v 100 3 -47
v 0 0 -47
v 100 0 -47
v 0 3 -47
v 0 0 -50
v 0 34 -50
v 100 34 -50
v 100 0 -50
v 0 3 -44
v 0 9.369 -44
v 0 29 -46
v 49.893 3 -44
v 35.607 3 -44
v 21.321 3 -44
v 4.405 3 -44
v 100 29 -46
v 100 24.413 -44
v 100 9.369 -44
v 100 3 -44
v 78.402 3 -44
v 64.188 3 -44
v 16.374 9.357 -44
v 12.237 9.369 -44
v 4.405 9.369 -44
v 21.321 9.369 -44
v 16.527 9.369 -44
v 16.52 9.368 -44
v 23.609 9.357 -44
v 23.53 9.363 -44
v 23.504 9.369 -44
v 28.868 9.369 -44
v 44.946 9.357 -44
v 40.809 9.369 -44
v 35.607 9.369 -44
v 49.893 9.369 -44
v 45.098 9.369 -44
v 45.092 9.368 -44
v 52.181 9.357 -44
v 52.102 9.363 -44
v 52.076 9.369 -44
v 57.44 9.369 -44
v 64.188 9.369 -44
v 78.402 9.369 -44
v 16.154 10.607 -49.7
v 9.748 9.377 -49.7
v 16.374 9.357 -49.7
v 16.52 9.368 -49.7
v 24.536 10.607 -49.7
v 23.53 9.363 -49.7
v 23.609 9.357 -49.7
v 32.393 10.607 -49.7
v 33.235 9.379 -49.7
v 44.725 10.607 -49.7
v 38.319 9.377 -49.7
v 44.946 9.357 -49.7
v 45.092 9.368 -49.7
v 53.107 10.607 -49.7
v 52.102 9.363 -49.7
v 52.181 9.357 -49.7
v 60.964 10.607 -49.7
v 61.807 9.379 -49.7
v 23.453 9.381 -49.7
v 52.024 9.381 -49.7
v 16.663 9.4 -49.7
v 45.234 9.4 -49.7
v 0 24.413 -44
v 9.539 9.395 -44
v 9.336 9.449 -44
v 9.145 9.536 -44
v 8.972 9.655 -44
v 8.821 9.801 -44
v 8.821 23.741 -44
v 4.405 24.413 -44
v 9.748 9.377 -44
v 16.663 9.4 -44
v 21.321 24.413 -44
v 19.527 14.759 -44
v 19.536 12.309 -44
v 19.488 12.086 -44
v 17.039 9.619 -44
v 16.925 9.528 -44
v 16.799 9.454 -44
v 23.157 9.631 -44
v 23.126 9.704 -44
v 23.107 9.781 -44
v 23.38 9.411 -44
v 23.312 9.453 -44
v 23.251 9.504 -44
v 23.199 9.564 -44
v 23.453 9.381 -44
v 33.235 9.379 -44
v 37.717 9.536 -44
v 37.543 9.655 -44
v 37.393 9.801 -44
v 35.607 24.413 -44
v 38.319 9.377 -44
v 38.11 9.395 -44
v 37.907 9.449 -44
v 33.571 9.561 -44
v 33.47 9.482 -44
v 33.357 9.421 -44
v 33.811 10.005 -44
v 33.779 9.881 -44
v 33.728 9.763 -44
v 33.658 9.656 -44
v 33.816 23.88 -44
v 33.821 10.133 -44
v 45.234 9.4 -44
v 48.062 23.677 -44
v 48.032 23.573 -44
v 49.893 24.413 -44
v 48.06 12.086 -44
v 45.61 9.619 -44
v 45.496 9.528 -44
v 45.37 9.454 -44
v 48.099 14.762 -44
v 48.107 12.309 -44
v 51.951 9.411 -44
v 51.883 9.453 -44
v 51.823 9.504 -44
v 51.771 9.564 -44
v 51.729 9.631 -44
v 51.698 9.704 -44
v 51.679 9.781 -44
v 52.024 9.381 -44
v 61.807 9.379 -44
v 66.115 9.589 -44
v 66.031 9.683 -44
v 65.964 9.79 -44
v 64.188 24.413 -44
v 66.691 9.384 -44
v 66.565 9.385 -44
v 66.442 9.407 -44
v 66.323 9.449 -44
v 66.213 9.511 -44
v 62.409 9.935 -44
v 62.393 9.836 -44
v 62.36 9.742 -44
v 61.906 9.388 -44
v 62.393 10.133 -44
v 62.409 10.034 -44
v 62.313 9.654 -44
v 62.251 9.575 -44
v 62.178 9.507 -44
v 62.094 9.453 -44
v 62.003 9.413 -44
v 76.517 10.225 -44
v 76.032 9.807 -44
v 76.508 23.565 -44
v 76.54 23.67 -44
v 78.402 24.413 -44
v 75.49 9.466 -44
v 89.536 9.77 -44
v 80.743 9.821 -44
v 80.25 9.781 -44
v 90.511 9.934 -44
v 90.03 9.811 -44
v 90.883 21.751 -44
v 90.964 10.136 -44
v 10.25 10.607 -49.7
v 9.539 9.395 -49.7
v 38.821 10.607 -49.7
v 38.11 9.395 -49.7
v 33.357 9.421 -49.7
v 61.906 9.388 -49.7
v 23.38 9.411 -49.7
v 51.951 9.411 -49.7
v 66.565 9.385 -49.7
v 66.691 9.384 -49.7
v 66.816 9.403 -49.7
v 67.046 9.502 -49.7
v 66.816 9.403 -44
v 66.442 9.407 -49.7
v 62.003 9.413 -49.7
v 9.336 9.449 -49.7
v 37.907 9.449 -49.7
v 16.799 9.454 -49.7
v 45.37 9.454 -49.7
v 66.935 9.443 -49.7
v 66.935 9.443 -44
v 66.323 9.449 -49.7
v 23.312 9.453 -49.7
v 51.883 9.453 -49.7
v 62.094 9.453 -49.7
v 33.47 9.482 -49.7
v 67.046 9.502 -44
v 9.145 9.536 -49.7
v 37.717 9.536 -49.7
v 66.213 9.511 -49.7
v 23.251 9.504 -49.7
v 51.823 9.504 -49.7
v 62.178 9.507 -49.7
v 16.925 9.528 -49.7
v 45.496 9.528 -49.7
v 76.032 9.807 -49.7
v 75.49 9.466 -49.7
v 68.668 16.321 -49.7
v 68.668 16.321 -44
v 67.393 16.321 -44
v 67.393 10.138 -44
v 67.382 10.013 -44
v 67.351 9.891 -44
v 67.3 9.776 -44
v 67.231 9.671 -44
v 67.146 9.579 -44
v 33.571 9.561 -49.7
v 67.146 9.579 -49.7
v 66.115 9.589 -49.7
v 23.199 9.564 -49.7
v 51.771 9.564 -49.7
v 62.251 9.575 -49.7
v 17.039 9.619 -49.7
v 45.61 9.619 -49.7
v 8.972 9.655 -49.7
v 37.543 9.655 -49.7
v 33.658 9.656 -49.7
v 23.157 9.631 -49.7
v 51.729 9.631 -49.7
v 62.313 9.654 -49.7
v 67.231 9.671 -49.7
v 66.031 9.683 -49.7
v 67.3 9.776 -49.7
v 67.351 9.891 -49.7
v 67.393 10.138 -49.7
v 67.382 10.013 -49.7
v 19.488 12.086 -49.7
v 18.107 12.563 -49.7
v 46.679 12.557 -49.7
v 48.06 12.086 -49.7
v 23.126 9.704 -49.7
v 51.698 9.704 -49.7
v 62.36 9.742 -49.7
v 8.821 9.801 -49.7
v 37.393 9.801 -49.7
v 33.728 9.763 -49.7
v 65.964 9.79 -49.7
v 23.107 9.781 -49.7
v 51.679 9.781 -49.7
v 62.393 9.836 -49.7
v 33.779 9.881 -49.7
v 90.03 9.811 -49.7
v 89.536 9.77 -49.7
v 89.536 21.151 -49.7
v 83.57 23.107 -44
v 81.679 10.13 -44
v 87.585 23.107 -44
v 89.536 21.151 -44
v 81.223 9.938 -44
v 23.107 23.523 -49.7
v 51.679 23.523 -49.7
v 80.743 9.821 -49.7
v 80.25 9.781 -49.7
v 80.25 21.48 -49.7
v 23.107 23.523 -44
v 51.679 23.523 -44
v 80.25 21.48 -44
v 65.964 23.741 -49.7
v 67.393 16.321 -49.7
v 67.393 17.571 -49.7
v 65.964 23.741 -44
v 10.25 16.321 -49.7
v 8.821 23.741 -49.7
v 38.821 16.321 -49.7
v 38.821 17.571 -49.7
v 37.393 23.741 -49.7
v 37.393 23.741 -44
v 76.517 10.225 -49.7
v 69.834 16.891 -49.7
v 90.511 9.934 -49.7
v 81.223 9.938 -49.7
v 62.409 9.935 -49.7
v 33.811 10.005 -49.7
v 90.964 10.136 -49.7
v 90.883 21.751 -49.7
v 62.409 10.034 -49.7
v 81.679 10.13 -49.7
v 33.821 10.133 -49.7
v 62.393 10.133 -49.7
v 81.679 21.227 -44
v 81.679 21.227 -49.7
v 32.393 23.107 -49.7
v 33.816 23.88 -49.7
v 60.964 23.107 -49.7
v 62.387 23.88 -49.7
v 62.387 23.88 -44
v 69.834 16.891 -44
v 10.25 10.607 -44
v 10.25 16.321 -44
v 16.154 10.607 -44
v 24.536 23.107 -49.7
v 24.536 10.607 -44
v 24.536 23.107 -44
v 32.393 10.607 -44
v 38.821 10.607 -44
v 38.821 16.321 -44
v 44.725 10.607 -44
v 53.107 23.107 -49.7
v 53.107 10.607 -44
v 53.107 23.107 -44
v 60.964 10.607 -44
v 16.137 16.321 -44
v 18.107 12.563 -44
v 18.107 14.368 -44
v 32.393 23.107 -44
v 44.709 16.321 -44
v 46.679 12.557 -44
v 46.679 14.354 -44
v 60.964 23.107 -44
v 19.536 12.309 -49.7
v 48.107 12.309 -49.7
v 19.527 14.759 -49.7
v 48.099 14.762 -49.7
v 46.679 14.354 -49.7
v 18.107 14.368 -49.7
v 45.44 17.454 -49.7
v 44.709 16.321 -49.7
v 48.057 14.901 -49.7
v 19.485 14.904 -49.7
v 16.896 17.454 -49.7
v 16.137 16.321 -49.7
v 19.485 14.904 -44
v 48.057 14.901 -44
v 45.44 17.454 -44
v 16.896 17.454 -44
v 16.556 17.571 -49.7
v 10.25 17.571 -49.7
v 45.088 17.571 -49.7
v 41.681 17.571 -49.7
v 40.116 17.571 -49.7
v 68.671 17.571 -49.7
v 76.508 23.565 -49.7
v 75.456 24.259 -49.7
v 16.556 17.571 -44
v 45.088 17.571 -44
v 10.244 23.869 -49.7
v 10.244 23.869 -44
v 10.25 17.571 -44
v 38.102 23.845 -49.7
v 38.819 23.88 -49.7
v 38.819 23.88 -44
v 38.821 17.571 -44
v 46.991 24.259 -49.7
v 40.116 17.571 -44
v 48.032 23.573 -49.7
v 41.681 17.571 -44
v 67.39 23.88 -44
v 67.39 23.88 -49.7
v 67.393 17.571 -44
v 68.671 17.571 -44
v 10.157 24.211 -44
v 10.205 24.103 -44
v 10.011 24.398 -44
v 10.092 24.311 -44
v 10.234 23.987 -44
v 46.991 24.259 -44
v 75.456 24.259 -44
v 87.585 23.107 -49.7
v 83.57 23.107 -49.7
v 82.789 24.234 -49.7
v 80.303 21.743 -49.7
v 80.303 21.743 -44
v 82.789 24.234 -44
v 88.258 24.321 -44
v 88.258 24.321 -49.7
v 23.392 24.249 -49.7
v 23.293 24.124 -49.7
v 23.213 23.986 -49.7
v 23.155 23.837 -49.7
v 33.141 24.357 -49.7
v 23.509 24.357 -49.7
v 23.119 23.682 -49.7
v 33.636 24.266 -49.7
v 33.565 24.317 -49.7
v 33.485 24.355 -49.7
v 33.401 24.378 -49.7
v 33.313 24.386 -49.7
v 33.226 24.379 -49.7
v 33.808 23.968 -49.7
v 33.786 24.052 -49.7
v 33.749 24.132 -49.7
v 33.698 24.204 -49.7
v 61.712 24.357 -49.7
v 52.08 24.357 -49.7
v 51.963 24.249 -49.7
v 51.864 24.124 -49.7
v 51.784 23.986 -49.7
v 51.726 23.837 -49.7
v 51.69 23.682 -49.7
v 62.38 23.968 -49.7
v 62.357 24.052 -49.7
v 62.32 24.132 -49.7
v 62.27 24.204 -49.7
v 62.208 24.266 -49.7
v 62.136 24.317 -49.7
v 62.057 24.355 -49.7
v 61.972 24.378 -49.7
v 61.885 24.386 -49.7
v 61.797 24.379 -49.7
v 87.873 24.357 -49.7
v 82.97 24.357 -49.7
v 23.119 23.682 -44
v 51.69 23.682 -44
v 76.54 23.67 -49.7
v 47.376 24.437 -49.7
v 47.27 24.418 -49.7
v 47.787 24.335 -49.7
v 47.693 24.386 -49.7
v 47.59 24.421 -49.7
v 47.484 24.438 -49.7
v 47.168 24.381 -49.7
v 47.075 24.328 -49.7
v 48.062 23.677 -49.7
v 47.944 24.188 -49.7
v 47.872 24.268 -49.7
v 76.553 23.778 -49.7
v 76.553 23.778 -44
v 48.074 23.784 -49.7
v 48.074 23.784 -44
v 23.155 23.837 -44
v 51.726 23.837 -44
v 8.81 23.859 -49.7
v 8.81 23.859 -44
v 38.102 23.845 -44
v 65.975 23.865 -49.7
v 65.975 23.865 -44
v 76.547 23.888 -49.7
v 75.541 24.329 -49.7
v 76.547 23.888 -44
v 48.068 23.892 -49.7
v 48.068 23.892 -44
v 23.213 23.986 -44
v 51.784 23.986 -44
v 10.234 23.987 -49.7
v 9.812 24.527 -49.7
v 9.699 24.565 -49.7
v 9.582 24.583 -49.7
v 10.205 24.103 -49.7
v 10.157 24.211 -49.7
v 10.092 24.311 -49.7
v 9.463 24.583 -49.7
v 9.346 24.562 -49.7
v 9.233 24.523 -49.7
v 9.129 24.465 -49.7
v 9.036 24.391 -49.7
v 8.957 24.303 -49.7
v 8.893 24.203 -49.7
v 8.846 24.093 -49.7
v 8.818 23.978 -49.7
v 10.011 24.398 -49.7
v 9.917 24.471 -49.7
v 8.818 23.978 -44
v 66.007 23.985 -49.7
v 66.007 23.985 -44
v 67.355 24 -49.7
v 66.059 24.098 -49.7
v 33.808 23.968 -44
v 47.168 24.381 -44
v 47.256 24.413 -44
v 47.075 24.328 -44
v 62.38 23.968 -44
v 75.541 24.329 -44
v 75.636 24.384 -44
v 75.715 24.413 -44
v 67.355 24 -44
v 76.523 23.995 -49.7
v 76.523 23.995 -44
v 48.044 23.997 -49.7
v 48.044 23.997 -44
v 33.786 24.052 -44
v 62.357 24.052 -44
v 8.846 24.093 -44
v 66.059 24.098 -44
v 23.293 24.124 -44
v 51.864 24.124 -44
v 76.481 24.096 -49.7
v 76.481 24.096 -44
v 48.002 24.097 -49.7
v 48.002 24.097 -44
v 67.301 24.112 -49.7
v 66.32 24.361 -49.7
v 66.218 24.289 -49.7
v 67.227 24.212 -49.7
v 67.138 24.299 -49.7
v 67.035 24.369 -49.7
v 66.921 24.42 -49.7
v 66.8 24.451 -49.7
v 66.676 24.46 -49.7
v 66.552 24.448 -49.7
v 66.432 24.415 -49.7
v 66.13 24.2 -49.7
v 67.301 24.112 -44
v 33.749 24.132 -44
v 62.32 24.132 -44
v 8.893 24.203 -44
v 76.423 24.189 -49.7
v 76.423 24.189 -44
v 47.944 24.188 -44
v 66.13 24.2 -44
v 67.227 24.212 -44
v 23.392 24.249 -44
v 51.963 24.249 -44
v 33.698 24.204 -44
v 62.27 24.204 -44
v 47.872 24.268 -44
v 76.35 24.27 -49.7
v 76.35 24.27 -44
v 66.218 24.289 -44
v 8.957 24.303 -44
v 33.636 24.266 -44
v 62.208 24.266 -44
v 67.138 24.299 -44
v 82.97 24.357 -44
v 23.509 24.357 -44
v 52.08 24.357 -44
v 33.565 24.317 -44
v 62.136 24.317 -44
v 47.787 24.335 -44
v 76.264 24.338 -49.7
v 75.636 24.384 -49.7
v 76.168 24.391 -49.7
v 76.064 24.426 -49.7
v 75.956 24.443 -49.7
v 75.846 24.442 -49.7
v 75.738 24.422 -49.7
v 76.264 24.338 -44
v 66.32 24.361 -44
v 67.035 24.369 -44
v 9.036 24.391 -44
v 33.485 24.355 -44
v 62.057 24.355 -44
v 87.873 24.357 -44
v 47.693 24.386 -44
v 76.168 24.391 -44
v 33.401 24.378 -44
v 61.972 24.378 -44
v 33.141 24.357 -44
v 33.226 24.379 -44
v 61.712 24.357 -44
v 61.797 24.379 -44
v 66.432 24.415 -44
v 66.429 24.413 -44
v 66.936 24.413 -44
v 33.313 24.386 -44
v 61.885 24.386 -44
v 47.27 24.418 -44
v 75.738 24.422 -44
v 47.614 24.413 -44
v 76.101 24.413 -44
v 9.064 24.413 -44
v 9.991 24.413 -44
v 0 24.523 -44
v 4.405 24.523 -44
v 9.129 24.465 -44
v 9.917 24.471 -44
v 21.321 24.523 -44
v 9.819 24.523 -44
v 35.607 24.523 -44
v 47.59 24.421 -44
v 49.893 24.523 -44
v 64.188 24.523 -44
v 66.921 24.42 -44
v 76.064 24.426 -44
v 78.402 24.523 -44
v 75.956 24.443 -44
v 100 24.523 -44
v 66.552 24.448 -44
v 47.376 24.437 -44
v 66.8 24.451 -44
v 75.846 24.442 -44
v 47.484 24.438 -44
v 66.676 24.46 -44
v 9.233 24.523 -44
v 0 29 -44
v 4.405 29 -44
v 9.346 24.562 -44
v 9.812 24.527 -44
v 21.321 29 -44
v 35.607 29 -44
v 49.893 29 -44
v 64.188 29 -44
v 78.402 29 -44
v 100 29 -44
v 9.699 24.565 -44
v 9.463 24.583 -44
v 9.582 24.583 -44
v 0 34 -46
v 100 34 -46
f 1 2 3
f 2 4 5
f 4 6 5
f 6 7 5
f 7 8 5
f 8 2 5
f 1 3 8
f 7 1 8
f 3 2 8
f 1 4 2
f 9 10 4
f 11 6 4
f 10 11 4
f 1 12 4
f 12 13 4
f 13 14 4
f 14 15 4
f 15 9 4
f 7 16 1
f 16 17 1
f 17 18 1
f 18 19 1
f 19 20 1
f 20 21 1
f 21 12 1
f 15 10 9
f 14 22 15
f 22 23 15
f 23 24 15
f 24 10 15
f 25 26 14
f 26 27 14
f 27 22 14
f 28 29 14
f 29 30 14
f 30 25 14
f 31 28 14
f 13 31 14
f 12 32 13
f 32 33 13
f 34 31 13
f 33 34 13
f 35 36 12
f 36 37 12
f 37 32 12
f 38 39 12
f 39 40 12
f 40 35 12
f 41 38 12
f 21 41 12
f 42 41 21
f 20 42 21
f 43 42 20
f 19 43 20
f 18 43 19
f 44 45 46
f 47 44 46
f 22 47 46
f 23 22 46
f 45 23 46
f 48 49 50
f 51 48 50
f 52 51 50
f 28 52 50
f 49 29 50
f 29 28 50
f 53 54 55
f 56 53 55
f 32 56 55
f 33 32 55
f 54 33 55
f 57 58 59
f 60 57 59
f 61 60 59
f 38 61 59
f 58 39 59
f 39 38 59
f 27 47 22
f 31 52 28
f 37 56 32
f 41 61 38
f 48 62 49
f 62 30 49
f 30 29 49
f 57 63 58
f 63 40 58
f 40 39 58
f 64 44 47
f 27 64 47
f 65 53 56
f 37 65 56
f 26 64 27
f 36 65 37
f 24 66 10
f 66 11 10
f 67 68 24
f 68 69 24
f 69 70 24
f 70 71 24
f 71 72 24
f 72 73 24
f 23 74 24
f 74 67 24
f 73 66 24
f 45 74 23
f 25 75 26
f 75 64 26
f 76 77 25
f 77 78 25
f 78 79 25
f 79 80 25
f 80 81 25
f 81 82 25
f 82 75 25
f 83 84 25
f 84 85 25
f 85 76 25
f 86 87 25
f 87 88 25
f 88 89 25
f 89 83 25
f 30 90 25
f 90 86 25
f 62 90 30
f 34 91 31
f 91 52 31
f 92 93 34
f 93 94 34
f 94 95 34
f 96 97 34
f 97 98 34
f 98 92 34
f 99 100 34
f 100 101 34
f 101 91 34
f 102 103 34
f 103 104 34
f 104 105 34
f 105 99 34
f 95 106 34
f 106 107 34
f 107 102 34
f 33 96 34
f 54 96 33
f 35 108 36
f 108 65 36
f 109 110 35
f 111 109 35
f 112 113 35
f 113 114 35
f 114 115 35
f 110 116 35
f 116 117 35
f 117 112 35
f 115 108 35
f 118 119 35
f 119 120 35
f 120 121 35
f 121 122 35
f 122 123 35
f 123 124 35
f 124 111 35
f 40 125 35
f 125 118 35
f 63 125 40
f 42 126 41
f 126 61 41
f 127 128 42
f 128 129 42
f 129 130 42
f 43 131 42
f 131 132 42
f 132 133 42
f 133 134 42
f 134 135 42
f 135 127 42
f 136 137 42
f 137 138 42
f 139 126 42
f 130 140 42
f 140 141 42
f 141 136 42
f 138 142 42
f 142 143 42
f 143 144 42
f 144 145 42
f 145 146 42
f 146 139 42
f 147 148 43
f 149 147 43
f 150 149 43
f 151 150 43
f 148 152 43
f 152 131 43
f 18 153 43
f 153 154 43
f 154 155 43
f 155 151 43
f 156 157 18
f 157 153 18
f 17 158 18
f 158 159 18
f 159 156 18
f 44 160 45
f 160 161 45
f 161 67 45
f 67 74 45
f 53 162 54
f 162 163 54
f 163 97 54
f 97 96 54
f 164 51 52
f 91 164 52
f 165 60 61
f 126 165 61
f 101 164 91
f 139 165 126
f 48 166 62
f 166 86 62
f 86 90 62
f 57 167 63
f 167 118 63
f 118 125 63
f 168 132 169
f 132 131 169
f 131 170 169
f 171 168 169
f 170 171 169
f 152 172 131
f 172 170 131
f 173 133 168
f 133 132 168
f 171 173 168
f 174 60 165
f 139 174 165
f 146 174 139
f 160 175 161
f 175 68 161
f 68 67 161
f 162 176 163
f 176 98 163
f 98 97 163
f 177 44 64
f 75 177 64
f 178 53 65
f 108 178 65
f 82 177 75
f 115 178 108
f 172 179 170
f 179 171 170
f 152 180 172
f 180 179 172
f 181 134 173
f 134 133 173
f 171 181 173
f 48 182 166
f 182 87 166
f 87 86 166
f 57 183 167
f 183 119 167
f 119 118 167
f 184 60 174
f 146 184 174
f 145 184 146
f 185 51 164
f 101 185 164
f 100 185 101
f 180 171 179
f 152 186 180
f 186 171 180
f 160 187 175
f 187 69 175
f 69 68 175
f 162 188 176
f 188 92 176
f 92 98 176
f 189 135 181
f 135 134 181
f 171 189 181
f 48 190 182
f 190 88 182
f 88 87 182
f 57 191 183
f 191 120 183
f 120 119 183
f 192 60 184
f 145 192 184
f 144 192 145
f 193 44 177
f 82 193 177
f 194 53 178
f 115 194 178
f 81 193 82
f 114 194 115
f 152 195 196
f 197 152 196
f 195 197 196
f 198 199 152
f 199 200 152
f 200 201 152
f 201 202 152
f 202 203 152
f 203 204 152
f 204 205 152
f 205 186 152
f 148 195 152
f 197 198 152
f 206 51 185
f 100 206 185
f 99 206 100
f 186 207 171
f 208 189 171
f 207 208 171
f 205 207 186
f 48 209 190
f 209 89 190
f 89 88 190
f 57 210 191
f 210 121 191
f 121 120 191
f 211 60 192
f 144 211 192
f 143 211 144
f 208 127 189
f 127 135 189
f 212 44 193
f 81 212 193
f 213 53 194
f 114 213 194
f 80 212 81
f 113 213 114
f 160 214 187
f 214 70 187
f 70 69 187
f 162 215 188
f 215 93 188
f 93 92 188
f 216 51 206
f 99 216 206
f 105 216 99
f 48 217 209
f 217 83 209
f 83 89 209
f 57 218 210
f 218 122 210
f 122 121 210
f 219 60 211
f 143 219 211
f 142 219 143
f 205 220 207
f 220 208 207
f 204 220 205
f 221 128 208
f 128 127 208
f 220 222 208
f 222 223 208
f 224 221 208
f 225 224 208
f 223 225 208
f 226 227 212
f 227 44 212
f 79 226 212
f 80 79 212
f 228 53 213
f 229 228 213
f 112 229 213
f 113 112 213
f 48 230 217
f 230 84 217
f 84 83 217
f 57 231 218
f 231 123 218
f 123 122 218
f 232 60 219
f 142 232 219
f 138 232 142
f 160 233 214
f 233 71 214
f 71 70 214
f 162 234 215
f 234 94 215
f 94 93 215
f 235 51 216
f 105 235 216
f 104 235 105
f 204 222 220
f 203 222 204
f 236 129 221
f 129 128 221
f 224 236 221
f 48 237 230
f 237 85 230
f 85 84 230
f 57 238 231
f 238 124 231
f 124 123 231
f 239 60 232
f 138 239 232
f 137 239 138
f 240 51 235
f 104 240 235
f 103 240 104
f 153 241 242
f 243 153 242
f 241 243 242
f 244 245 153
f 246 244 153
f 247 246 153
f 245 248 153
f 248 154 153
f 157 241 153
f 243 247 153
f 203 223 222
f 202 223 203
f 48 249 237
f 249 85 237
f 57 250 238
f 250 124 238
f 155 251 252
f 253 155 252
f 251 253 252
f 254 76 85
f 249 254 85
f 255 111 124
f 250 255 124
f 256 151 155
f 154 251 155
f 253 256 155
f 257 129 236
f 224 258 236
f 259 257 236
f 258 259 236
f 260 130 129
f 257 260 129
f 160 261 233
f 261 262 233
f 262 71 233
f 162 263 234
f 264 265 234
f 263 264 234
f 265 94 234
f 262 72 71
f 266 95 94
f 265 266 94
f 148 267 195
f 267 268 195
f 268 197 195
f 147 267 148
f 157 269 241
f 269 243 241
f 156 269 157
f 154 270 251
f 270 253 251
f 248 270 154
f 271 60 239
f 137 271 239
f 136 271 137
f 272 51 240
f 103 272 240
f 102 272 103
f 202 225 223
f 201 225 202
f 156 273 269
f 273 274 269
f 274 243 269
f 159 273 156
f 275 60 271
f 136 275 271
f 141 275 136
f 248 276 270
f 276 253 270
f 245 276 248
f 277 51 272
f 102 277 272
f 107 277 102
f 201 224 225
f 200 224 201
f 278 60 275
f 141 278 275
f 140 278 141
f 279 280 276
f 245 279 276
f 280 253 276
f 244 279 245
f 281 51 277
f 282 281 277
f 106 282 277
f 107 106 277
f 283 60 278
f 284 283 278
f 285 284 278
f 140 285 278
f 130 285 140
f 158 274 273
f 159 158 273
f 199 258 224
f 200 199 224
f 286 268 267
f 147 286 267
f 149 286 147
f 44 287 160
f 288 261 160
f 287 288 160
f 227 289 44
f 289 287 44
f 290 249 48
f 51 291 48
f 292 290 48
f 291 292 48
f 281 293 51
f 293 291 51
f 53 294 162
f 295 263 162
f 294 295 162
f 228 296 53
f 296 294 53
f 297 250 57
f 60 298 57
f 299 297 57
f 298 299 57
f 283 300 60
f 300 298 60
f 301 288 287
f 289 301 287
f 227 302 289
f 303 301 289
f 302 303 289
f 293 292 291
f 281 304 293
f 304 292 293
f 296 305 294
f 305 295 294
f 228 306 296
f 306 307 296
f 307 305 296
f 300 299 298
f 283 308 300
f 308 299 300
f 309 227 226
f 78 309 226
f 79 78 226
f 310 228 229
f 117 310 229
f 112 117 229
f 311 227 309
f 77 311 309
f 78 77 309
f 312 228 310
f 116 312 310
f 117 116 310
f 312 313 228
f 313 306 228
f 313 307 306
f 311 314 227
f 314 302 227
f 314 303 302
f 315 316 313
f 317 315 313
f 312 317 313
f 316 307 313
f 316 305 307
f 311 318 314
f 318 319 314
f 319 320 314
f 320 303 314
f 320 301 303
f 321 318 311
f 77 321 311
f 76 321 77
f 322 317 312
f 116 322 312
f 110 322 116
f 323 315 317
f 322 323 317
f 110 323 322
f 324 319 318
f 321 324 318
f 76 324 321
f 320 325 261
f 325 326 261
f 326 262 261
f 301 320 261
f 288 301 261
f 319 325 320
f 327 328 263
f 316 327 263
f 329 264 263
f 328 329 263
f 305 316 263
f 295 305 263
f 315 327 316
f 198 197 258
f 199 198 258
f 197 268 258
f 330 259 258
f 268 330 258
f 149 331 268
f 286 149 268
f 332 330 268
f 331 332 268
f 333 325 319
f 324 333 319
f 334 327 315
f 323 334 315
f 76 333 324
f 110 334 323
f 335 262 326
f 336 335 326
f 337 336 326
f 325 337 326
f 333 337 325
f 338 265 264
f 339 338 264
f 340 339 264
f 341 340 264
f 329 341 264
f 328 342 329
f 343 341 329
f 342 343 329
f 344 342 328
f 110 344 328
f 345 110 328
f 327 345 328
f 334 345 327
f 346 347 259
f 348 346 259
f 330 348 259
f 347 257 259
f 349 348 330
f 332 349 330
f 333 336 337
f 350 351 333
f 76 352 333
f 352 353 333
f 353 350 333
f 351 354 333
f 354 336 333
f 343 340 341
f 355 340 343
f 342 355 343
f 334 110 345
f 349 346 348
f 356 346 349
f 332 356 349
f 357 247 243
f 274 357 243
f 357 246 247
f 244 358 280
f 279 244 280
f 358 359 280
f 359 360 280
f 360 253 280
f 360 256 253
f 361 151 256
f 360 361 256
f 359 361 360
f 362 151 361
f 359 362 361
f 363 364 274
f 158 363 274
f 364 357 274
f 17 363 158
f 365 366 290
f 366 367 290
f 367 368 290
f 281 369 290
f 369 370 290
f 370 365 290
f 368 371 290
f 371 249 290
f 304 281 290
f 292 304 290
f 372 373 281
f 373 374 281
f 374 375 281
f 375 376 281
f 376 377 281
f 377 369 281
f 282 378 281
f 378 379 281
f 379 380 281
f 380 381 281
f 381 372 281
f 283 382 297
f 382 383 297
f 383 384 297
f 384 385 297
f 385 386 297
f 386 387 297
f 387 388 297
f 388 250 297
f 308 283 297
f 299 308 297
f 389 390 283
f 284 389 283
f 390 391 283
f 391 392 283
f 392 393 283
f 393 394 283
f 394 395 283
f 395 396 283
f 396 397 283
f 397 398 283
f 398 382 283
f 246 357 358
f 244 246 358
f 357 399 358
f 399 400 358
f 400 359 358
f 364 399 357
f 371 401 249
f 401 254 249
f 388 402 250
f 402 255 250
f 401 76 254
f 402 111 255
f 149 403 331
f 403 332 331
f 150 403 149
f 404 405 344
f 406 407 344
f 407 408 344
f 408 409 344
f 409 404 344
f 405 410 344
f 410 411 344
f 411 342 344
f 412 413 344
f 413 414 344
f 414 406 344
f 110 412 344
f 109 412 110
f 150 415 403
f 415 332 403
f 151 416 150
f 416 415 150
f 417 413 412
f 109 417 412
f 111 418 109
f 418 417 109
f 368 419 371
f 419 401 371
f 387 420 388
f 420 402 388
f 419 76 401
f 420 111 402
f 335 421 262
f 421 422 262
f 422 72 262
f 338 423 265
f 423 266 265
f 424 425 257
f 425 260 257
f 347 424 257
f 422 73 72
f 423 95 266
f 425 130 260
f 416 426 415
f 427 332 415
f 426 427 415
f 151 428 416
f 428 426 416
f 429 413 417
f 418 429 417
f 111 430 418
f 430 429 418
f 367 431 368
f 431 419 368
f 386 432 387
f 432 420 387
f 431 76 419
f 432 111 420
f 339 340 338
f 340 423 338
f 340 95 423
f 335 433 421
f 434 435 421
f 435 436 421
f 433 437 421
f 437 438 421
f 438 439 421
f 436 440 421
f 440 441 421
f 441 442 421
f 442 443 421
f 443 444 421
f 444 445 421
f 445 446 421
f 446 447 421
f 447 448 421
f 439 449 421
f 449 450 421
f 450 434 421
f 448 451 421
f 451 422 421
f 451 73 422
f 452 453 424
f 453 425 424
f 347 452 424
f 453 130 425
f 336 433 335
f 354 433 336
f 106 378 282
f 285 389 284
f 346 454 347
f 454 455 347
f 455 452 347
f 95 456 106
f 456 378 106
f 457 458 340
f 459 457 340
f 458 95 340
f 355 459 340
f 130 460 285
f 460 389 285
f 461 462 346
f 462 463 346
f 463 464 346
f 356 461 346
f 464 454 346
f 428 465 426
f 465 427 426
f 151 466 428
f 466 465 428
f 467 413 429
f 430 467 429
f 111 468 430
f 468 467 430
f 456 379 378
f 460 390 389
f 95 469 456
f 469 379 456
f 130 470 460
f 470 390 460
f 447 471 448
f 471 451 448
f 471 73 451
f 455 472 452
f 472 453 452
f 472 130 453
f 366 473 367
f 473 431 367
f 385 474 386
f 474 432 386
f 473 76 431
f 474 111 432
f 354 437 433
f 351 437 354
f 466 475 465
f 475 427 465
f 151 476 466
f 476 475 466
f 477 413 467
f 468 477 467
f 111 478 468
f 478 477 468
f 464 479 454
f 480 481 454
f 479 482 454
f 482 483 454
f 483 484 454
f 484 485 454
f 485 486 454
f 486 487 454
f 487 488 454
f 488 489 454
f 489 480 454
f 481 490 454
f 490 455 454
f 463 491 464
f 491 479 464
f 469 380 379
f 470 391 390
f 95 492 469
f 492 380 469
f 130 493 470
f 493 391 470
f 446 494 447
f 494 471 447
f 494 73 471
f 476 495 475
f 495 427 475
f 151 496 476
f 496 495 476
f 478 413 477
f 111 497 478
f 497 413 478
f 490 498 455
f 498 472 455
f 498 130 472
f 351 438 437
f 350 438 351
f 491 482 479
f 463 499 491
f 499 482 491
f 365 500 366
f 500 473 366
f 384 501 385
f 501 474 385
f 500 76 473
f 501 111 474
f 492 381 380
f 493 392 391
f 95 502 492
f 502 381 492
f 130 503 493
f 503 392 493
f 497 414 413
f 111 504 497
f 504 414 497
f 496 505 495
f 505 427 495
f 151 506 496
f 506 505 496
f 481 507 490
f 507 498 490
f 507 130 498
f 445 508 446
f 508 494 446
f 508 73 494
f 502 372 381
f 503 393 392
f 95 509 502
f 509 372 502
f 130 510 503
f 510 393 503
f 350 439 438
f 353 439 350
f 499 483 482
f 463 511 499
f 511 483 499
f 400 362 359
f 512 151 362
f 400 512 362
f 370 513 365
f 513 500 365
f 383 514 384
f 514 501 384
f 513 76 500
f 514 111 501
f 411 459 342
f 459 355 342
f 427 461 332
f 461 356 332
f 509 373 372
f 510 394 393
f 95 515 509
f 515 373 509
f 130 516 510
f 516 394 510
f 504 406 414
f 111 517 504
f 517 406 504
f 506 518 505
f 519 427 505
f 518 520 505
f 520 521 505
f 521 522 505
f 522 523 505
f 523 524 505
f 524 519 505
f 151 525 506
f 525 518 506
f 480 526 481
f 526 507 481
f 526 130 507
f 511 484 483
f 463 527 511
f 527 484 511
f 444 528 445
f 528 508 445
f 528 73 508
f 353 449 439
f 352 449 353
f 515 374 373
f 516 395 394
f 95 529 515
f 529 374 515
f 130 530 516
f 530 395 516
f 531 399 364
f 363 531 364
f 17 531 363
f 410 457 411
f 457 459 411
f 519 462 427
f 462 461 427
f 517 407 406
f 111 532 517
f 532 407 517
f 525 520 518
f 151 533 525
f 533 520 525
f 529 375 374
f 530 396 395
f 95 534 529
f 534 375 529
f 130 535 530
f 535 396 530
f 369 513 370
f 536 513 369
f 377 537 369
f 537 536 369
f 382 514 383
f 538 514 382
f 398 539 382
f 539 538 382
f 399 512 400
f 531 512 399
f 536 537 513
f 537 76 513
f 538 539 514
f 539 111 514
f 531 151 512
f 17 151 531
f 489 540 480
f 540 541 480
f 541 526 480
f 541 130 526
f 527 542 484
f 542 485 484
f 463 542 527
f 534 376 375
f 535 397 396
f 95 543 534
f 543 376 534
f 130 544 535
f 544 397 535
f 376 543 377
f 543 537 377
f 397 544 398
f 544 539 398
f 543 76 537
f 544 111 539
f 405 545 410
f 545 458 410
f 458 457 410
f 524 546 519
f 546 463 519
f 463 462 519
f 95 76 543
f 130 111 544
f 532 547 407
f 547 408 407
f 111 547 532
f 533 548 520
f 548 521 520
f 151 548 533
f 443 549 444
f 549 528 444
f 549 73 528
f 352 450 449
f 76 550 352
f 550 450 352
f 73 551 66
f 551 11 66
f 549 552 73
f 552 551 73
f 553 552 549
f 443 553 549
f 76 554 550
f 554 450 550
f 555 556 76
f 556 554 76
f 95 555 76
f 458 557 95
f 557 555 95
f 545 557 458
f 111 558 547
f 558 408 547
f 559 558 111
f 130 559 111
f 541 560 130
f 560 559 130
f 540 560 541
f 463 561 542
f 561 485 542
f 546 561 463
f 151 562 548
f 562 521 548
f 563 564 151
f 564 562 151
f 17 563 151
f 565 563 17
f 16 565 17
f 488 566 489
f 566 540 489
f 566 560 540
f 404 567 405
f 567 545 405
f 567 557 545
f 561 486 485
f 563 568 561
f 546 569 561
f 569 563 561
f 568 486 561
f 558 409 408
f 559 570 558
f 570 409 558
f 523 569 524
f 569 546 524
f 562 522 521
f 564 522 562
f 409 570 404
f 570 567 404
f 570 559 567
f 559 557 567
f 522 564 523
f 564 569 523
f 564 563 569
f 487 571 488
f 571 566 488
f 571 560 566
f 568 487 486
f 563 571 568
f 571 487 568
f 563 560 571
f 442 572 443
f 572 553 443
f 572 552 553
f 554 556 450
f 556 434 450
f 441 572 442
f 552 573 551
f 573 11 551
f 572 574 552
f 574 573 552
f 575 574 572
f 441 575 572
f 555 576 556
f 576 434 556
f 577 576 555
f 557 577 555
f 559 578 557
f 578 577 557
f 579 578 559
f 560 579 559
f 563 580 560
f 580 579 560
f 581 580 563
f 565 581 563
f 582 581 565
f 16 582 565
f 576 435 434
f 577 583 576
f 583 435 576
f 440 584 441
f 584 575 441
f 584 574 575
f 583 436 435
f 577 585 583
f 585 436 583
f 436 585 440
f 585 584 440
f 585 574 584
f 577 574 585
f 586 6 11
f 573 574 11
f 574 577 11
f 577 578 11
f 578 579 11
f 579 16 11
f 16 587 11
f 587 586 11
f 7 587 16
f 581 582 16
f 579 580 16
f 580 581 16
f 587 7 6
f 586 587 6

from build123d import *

# Parameters (mm, degrees)
SKETCH1_W           = 100
SKETCH1_H           = 50
BOSS_EXTRUDE1_DEPTH = 6
SKETCH2_W           = 10
SKETCH2_H           = 3
CUT_EXTRUDE1_DEPTH  = 101
SKETCH3_W           = 6
SKETCH3_H           = 34
BOSS_EXTRUDE2_DEPTH = 100
SKETCH4_W           = 2
SKETCH4_H           = 5
CUT_EXTRUDE2_DEPTH  = 101
SKETCH5_W           = 7.857142857
SKETCH5_H           = 12.5
CUT_EXTRUDE3_DEPTH  = 5.7
CUT_EXTRUDE4_DEPTH  = 5.5
CUT_EXTRUDE5_DEPTH  = 101.0000001


with BuildPart() as part:
    # Sketch1 → Boss-Extrude1 (new body)
    with BuildSketch(Plane(origin=(0, 0, 0), x_dir=(1, 0, 0), z_dir=(0, 1, 0))):
        with Locations((50, 25)):
            Rectangle(SKETCH1_W, SKETCH1_H)
    extrude(amount=BOSS_EXTRUDE1_DEPTH)

    # Sketch2 → Cut-Extrude1 (cut, through all)
    with BuildSketch(Plane(origin=(100, 0, 0), x_dir=(0, 0, -1), z_dir=(1, 0, 0))):
        with Locations((5, 1.5)):
            Rectangle(SKETCH2_W, SKETCH2_H)
    extrude(amount=-CUT_EXTRUDE1_DEPTH, mode=Mode.SUBTRACT)

    # Sketch3 → Boss-Extrude2 (add)
    with BuildSketch(Plane(origin=(100, 0, 0), x_dir=(0, 0, -1), z_dir=(1, 0, 0))):
        with Locations((47, 17)):
            Rectangle(SKETCH3_W, SKETCH3_H)
    extrude(amount=-BOSS_EXTRUDE2_DEPTH)

    # Sketch4 → Cut-Extrude2 (cut, through all)
    with BuildSketch(Plane.ZY):
        with Locations((-45, 31.5)):
            Rectangle(SKETCH4_W, SKETCH4_H)
    extrude(amount=-CUT_EXTRUDE2_DEPTH, mode=Mode.SUBTRACT)

    # Sketch5 → Cut-Extrude3 (cut)
    with BuildSketch(Plane(origin=(0, 0, -44), x_dir=(-1, 0, 0), z_dir=(0, 0, -1))):
        with BuildLine():
            Line((-45.088169643, 17.571428571), (-45.439732143, 17.454241071))
            Line((-45.439732143, 17.454241071), (-48.056919643, 14.901227679))
            Line((-48.056919643, 14.901227679), (-48.098772321, 14.76171875))
            Line((-48.098772321, 14.76171875), (-48.107142857, 12.309151786))
            Line((-48.107142857, 12.309151786), (-48.059709821, 12.0859375))
            Line((-48.059709821, 12.0859375), (-45.609933036, 9.619419643))
            ThreePointArc((-45.609933036, 9.619419643), (-45.303061085, 9.424580045), (-44.945870536, 9.357142857))
            Line((-44.945870536, 9.357142857), (-38.319196429, 9.376674107))
            ThreePointArc((-38.319196429, 9.376674107), (-37.810119286, 9.488456034), (-37.392857143, 9.80078125))
            Line((-37.392857143, 9.80078125), (-37.392857143, 23.740513393))
            ThreePointArc((-37.392857143, 23.740513393), (-38.102358714, 23.844903984), (-38.818638393, 23.880022321))
            Line((-38.818638393, 23.880022321), (-38.821428571, 17.571428571))
            Line((-38.821428571, 17.571428571), (-40.116071429, 17.571428571))
            Line((-40.116071429, 17.571428571), (-46.991071429, 24.259486607))
            ThreePointArc((-46.991071429, 24.259486607), (-47.787451466, 24.334800239), (-48.031808036, 23.573102679))
            Line((-48.031808036, 23.573102679), (-41.681361607, 17.571428571))
            Line((-41.681361607, 17.571428571), (-45.088169643, 17.571428571))
        make_face()
        Polygon((-46.678571429, 12.557477679), (-44.725446429, 10.607142857), (-38.821428571, 10.607142857), (-38.821428571, 16.321428571), (-44.708705357, 16.321428571), (-46.678571429, 14.354352679), align=None, mode=Mode.SUBTRACT)
        with BuildLine():
            Line((-17.038504464, 9.619419643), (-19.48828125, 12.0859375))
            Line((-19.48828125, 12.0859375), (-19.535714286, 12.309151786))
            Line((-19.535714286, 12.309151786), (-19.52734375, 14.758928571))
            Line((-19.52734375, 14.758928571), (-19.485491071, 14.904017857))
            Line((-19.485491071, 14.904017857), (-16.896205357, 17.454241071))
            Line((-16.896205357, 17.454241071), (-16.555803571, 17.571428571))
            Line((-16.555803571, 17.571428571), (-10.25, 17.571428571))
            Line((-10.25, 17.571428571), (-10.244419643, 23.868861607))
            ThreePointArc((-10.244419643, 23.868861607), (-9.462763686, 24.582553037), (-8.821428571, 23.740513393))
            Line((-8.821428571, 23.740513393), (-8.821428571, 9.80078125))
            ThreePointArc((-8.821428571, 9.80078125), (-9.238690714, 9.488456034), (-9.747767857, 9.376674107))
            Line((-9.747767857, 9.376674107), (-16.374441964, 9.357142857))
            ThreePointArc((-16.374441964, 9.357142857), (-16.731632514, 9.424580045), (-17.038504464, 9.619419643))
        make_face()
        Polygon((-18.107142857, 12.563058036), (-16.154017857, 10.607142857), (-10.25, 10.607142857), (-10.25, 16.321428571), (-16.137276786, 16.321428571), (-18.107142857, 14.368303571), align=None, mode=Mode.SUBTRACT)
        with BuildLine():
            Line((-33.821428571, 10.1328125), (-33.815848214, 23.880022321))
            ThreePointArc((-33.815848214, 23.880022321), (-33.601713039, 24.293327013), (-33.140625, 24.357142857))
            Line((-33.140625, 24.357142857), (-23.508928571, 24.357142857))
            ThreePointArc((-23.508928571, 24.357142857), (-23.212822653, 23.985866281), (-23.107142857, 23.522879464))
            Line((-23.107142857, 23.522879464), (-23.107142857, 9.78125))
            ThreePointArc((-23.107142857, 9.78125), (-23.280423047, 9.477022359), (-23.609375, 9.357142857))
            Line((-23.609375, 9.357142857), (-33.235491071, 9.379464286))
            ThreePointArc((-33.235491071, 9.379464286), (-33.657785084, 9.655552078), (-33.821428571, 10.1328125))
        make_face()
        with Locations((-28.464285715, 16.857142857)):
            Rectangle(SKETCH5_W, SKETCH5_H, mode=Mode.SUBTRACT)
        with BuildLine():
            Line((-62.392857143, 10.1328125), (-62.387276786, 23.880022321))
            ThreePointArc((-62.387276786, 23.880022321), (-62.17314161, 24.293327013), (-61.712053571, 24.357142857))
            Line((-61.712053571, 24.357142857), (-52.080357143, 24.357142857))
            ThreePointArc((-52.080357143, 24.357142857), (-51.784251224, 23.985866281), (-51.678571429, 23.522879464))
            Line((-51.678571429, 23.522879464), (-51.678571429, 9.78125))
            ThreePointArc((-51.678571429, 9.78125), (-51.851851619, 9.477022359), (-52.180803571, 9.357142857))
            Line((-52.180803571, 9.357142857), (-61.806919643, 9.379464286))
            ThreePointArc((-61.806919643, 9.379464286), (-62.283572717, 9.613272807), (-62.392857143, 10.1328125))
        make_face()
        with Locations((-57.035714286, 16.857142857)):
            Rectangle(SKETCH5_W, SKETCH5_H, mode=Mode.SUBTRACT)
        with BuildLine():
            Line((-76.516741071, 10.224888393), (-69.834263393, 16.890625))
            Line((-69.834263393, 16.890625), (-76.508370536, 23.564732143))
            ThreePointArc((-76.508370536, 23.564732143), (-76.263865977, 24.33823157), (-75.456473214, 24.259486607))
            Line((-75.456473214, 24.259486607), (-68.670758929, 17.571428571))
            Line((-68.670758929, 17.571428571), (-67.392857143, 17.571428571))
            Line((-67.392857143, 17.571428571), (-67.390066964, 23.880022321))
            ThreePointArc((-67.390066964, 23.880022321), (-66.613914042, 24.456808533), (-65.964285714, 23.740513393))
            Line((-65.964285714, 23.740513393), (-65.964285714, 9.789620536))
            ThreePointArc((-65.964285714, 9.789620536), (-66.815504738, 9.403127861), (-67.392857143, 10.138392857))
            Line((-67.392857143, 10.138392857), (-67.392857143, 16.321428571))
            Line((-67.392857143, 16.321428571), (-68.66796875, 16.321428571))
            Line((-68.66796875, 16.321428571), (-75.489955357, 9.465959821))
            ThreePointArc((-75.489955357, 9.465959821), (-76.031889018, 9.806810078), (-76.516741071, 10.224888393))
        make_face()
        with BuildLine():
            Line((-81.678571429, 10.130022321), (-81.678571429, 21.2265625))
            Line((-81.678571429, 21.2265625), (-83.5703125, 23.107142857))
            Line((-83.5703125, 23.107142857), (-87.585379464, 23.107142857))
            Line((-87.585379464, 23.107142857), (-89.535714286, 21.151227679))
            Line((-89.535714286, 21.151227679), (-89.535714286, 9.770089286))
            ThreePointArc((-89.535714286, 9.770089286), (-90.273009404, 9.862916097), (-90.964285714, 10.135602679))
            Line((-90.964285714, 10.135602679), (-90.883370536, 21.751116071))
            Line((-90.883370536, 21.751116071), (-88.2578125, 24.320870536))
            Line((-88.2578125, 24.320870536), (-87.872767857, 24.357142857))
            Line((-87.872767857, 24.357142857), (-82.970424107, 24.357142857))
            Line((-82.970424107, 24.357142857), (-82.7890625, 24.234375))
            Line((-82.7890625, 24.234375), (-80.303013393, 21.742745536))
            Line((-80.303013393, 21.742745536), (-80.25, 21.48046875))
            Line((-80.25, 21.48046875), (-80.25, 9.78125))
            ThreePointArc((-80.25, 9.78125), (-80.985264996, 9.869705022), (-81.678571429, 10.130022321))
        make_face()
    extrude(amount=CUT_EXTRUDE3_DEPTH, mode=Mode.SUBTRACT)

    # Sketch8 → Cut-Extrude4 (cut)
    with BuildSketch(Plane(origin=(0, 6, 0), x_dir=(1, 0, 0), z_dir=(0, 1, 0))):
        with BuildLine():
            Line((7.011617647, 30.077205882), (8.955082743, 27.33260299))
            add(Edge.make_bspline(
                [(8.955082743, 27.33260299), (9.12959235, 26.730722395), (8.207708735, 26.573406529), (7.899470003, 26.933823529)],
                knots=[0, 0, 0, 0, 1, 1, 1, 1], degree=3))
            add(Edge.make_bspline(
                [(7.899470003, 26.933823529), (6.967481131, 27.995956124), (6.173874947, 29.162344961)],
                knots=[0, 0, 0, 1, 1, 1], degree=2))
            add(Edge.make_bspline(
                [(6.173874947, 29.162344961), (5.827065663, 29.66494419), (6.530628947, 30.242627585), (7.011617647, 30.077205882)],
                knots=[0, 0, 0, 0, 1, 1, 1, 1], degree=3))
        make_face()
        with BuildLine():
            Line((8.476184036, 31.013434386), (10.320441176, 28.506054806))
            add(Edge.make_bspline(
                [(10.320441176, 28.506054806), (10.75287522, 28.022402696), (9.844480118, 27.32594185), (9.464423283, 27.806698869)],
                knots=[0, 0, 0, 0, 1, 1, 1, 1], degree=3))
            add(Edge.make_bspline(
                [(7.548449232, 30.408088235), (8.369245022, 29.00368602), (9.464423283, 27.806698869)],
                knots=[0, 0, 0, 1, 1, 1], degree=2))
            add(Edge.make_bspline(
                [(7.548449232, 30.408088235), (7.420862108, 30.780822958), (7.657281624, 31.572935659), (8.169705882, 31.400735294)],
                knots=[0, 0, 0, 0, 1, 1, 1, 1], degree=3))
            add(Edge.make_bspline(
                [(8.169705882, 31.400735294), (8.365163665, 31.240936083), (8.476184036, 31.013434386)],
                knots=[0, 0, 0, 1, 1, 1], degree=2))
        make_face()
        Polygon((10.816764706, 31.400735294), (10.155, 32.724264706), (9.327794118, 32.393382353), (9.162352941, 31.235294118), (9.824117647, 30.408088235), align=None)
        with BuildLine():
            Line((12.802058824, 32.227941176), (11.643970588, 33.716911765))
            add(Edge.make_bspline(
                [(11.643970588, 33.716911765), (10.801410064, 33.411012177), (11.092331374, 32.550744981)],
                knots=[0, 0, 0, 1, 1, 1], degree=2))
            Line((11.092331374, 32.550744981), (11.643970588, 31.731617647))
            Line((11.643970588, 31.731617647), (12.802058824, 32.227941176))
        make_face()
        with BuildLine():
            Line((13.193009945, 29.973529412), (13.854774651, 28.815441176))
            Line((13.854774651, 28.815441176), (8.560657004, 26.333823529))
            Line((8.560657004, 26.333823529), (7.402568768, 26.830147059))
            Line((7.402568768, 26.830147059), (9.056980533, 19.881617647))
            Line((9.056980533, 19.881617647), (13.689333474, 20.047058824))
            add(Edge.make_bspline(
                [(13.689333474, 20.047058824), (12.450227116, 27.171920383), (13.777231511, 23.836713066), (15.840068768, 28.65)],
                knots=[0, 0, 0, 0, 1, 1, 1, 1], degree=3))
            Line((15.840068768, 28.65), (13.854774651, 31.627941176))
            Line((13.854774651, 31.627941176), (10.711392298, 30.138970588))
            Line((10.711392298, 30.138970588), (12.365804063, 29.477205882))
            Line((12.365804063, 29.477205882), (13.193009945, 29.973529412))
        make_face()
        Polygon((31.240068768, 25.85), (31.240068768, 28.65), (28.440068768, 28.65), (28.440068768, 31.45), (25.640068768, 31.45), (25.640068768, 28.65), (22.840068768, 28.65), (22.840068768, 25.85), (25.640068768, 25.85), (25.640068768, 23.05), (28.440068768, 23.05), (28.440068768, 25.85), align=None)
        Polygon((52.041417767, 30.75), (42.541417767, 30.75), (42.541417767, 33.75), (37.990068768, 27.25), (42.541417767, 20.75), (42.541417767, 23.75), (52.041417767, 23.75), align=None)
        Polygon((60.419322104, 21.339322104), (59.041417767, 29.153805922), (61.16273811, 27.032485579), (67.880252532, 33.75), (72.83, 28.800252532), (66.112485579, 22.08273811), (68.233805922, 19.961417767), align=None)
        Polygon((90.03, 33.75), (90.03, 24.25), (93.03, 24.25), (86.476783646, 19.661388509), (80.03, 24.25), (83.03, 24.25), (83.03, 33.75), align=None)
    extrude(amount=-CUT_EXTRUDE4_DEPTH, mode=Mode.SUBTRACT)

    # Sketch9 → Cut-Extrude5 (cut, through all)
    with BuildSketch(Plane.ZY):
        Polygon((0, 6), (-44, 6), (-44, 3), (-47, 3), (-47, 0), (-44, 0), (0, 0), align=None)
    extrude(amount=-CUT_EXTRUDE5_DEPTH, mode=Mode.SUBTRACT)


solid = part.part
